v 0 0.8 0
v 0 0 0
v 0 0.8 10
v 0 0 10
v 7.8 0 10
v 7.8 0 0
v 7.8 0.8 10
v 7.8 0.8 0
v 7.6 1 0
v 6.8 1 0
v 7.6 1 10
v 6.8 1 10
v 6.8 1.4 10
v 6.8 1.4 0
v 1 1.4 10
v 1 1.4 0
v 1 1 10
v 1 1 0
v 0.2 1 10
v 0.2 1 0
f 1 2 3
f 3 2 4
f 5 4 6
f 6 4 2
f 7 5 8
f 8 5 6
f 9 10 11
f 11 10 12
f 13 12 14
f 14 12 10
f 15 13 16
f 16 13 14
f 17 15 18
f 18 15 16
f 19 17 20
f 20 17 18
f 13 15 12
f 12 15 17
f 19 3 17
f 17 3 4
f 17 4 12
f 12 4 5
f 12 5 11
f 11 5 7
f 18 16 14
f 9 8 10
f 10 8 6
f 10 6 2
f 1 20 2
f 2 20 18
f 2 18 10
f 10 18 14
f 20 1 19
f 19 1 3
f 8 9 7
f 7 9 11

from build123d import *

# Parameters (mm, degrees)
BOSS_EXTRUDE1_DEPTH = 10
CHAMFER1_SIZE       = 0.2


with BuildPart() as part:
    # Sketch1 → Boss-Extrude1 (new body)
    with BuildSketch(Plane.XY):
        Polygon((0, 0), (7.8, 0), (7.8, 1), (6.8, 1), (6.8, 1.4), (1, 1.4), (1, 1), (0, 1), align=None)
    extrude(amount=BOSS_EXTRUDE1_DEPTH)

    # Chamfer1
    chamfer1_edges = [part.edges().sort_by_distance(p)[0] for p in [
        (0, 1, 5),
        (7.8, 1, 5),
    ]]
    chamfer(chamfer1_edges, length=CHAMFER1_SIZE)


solid = part.part
